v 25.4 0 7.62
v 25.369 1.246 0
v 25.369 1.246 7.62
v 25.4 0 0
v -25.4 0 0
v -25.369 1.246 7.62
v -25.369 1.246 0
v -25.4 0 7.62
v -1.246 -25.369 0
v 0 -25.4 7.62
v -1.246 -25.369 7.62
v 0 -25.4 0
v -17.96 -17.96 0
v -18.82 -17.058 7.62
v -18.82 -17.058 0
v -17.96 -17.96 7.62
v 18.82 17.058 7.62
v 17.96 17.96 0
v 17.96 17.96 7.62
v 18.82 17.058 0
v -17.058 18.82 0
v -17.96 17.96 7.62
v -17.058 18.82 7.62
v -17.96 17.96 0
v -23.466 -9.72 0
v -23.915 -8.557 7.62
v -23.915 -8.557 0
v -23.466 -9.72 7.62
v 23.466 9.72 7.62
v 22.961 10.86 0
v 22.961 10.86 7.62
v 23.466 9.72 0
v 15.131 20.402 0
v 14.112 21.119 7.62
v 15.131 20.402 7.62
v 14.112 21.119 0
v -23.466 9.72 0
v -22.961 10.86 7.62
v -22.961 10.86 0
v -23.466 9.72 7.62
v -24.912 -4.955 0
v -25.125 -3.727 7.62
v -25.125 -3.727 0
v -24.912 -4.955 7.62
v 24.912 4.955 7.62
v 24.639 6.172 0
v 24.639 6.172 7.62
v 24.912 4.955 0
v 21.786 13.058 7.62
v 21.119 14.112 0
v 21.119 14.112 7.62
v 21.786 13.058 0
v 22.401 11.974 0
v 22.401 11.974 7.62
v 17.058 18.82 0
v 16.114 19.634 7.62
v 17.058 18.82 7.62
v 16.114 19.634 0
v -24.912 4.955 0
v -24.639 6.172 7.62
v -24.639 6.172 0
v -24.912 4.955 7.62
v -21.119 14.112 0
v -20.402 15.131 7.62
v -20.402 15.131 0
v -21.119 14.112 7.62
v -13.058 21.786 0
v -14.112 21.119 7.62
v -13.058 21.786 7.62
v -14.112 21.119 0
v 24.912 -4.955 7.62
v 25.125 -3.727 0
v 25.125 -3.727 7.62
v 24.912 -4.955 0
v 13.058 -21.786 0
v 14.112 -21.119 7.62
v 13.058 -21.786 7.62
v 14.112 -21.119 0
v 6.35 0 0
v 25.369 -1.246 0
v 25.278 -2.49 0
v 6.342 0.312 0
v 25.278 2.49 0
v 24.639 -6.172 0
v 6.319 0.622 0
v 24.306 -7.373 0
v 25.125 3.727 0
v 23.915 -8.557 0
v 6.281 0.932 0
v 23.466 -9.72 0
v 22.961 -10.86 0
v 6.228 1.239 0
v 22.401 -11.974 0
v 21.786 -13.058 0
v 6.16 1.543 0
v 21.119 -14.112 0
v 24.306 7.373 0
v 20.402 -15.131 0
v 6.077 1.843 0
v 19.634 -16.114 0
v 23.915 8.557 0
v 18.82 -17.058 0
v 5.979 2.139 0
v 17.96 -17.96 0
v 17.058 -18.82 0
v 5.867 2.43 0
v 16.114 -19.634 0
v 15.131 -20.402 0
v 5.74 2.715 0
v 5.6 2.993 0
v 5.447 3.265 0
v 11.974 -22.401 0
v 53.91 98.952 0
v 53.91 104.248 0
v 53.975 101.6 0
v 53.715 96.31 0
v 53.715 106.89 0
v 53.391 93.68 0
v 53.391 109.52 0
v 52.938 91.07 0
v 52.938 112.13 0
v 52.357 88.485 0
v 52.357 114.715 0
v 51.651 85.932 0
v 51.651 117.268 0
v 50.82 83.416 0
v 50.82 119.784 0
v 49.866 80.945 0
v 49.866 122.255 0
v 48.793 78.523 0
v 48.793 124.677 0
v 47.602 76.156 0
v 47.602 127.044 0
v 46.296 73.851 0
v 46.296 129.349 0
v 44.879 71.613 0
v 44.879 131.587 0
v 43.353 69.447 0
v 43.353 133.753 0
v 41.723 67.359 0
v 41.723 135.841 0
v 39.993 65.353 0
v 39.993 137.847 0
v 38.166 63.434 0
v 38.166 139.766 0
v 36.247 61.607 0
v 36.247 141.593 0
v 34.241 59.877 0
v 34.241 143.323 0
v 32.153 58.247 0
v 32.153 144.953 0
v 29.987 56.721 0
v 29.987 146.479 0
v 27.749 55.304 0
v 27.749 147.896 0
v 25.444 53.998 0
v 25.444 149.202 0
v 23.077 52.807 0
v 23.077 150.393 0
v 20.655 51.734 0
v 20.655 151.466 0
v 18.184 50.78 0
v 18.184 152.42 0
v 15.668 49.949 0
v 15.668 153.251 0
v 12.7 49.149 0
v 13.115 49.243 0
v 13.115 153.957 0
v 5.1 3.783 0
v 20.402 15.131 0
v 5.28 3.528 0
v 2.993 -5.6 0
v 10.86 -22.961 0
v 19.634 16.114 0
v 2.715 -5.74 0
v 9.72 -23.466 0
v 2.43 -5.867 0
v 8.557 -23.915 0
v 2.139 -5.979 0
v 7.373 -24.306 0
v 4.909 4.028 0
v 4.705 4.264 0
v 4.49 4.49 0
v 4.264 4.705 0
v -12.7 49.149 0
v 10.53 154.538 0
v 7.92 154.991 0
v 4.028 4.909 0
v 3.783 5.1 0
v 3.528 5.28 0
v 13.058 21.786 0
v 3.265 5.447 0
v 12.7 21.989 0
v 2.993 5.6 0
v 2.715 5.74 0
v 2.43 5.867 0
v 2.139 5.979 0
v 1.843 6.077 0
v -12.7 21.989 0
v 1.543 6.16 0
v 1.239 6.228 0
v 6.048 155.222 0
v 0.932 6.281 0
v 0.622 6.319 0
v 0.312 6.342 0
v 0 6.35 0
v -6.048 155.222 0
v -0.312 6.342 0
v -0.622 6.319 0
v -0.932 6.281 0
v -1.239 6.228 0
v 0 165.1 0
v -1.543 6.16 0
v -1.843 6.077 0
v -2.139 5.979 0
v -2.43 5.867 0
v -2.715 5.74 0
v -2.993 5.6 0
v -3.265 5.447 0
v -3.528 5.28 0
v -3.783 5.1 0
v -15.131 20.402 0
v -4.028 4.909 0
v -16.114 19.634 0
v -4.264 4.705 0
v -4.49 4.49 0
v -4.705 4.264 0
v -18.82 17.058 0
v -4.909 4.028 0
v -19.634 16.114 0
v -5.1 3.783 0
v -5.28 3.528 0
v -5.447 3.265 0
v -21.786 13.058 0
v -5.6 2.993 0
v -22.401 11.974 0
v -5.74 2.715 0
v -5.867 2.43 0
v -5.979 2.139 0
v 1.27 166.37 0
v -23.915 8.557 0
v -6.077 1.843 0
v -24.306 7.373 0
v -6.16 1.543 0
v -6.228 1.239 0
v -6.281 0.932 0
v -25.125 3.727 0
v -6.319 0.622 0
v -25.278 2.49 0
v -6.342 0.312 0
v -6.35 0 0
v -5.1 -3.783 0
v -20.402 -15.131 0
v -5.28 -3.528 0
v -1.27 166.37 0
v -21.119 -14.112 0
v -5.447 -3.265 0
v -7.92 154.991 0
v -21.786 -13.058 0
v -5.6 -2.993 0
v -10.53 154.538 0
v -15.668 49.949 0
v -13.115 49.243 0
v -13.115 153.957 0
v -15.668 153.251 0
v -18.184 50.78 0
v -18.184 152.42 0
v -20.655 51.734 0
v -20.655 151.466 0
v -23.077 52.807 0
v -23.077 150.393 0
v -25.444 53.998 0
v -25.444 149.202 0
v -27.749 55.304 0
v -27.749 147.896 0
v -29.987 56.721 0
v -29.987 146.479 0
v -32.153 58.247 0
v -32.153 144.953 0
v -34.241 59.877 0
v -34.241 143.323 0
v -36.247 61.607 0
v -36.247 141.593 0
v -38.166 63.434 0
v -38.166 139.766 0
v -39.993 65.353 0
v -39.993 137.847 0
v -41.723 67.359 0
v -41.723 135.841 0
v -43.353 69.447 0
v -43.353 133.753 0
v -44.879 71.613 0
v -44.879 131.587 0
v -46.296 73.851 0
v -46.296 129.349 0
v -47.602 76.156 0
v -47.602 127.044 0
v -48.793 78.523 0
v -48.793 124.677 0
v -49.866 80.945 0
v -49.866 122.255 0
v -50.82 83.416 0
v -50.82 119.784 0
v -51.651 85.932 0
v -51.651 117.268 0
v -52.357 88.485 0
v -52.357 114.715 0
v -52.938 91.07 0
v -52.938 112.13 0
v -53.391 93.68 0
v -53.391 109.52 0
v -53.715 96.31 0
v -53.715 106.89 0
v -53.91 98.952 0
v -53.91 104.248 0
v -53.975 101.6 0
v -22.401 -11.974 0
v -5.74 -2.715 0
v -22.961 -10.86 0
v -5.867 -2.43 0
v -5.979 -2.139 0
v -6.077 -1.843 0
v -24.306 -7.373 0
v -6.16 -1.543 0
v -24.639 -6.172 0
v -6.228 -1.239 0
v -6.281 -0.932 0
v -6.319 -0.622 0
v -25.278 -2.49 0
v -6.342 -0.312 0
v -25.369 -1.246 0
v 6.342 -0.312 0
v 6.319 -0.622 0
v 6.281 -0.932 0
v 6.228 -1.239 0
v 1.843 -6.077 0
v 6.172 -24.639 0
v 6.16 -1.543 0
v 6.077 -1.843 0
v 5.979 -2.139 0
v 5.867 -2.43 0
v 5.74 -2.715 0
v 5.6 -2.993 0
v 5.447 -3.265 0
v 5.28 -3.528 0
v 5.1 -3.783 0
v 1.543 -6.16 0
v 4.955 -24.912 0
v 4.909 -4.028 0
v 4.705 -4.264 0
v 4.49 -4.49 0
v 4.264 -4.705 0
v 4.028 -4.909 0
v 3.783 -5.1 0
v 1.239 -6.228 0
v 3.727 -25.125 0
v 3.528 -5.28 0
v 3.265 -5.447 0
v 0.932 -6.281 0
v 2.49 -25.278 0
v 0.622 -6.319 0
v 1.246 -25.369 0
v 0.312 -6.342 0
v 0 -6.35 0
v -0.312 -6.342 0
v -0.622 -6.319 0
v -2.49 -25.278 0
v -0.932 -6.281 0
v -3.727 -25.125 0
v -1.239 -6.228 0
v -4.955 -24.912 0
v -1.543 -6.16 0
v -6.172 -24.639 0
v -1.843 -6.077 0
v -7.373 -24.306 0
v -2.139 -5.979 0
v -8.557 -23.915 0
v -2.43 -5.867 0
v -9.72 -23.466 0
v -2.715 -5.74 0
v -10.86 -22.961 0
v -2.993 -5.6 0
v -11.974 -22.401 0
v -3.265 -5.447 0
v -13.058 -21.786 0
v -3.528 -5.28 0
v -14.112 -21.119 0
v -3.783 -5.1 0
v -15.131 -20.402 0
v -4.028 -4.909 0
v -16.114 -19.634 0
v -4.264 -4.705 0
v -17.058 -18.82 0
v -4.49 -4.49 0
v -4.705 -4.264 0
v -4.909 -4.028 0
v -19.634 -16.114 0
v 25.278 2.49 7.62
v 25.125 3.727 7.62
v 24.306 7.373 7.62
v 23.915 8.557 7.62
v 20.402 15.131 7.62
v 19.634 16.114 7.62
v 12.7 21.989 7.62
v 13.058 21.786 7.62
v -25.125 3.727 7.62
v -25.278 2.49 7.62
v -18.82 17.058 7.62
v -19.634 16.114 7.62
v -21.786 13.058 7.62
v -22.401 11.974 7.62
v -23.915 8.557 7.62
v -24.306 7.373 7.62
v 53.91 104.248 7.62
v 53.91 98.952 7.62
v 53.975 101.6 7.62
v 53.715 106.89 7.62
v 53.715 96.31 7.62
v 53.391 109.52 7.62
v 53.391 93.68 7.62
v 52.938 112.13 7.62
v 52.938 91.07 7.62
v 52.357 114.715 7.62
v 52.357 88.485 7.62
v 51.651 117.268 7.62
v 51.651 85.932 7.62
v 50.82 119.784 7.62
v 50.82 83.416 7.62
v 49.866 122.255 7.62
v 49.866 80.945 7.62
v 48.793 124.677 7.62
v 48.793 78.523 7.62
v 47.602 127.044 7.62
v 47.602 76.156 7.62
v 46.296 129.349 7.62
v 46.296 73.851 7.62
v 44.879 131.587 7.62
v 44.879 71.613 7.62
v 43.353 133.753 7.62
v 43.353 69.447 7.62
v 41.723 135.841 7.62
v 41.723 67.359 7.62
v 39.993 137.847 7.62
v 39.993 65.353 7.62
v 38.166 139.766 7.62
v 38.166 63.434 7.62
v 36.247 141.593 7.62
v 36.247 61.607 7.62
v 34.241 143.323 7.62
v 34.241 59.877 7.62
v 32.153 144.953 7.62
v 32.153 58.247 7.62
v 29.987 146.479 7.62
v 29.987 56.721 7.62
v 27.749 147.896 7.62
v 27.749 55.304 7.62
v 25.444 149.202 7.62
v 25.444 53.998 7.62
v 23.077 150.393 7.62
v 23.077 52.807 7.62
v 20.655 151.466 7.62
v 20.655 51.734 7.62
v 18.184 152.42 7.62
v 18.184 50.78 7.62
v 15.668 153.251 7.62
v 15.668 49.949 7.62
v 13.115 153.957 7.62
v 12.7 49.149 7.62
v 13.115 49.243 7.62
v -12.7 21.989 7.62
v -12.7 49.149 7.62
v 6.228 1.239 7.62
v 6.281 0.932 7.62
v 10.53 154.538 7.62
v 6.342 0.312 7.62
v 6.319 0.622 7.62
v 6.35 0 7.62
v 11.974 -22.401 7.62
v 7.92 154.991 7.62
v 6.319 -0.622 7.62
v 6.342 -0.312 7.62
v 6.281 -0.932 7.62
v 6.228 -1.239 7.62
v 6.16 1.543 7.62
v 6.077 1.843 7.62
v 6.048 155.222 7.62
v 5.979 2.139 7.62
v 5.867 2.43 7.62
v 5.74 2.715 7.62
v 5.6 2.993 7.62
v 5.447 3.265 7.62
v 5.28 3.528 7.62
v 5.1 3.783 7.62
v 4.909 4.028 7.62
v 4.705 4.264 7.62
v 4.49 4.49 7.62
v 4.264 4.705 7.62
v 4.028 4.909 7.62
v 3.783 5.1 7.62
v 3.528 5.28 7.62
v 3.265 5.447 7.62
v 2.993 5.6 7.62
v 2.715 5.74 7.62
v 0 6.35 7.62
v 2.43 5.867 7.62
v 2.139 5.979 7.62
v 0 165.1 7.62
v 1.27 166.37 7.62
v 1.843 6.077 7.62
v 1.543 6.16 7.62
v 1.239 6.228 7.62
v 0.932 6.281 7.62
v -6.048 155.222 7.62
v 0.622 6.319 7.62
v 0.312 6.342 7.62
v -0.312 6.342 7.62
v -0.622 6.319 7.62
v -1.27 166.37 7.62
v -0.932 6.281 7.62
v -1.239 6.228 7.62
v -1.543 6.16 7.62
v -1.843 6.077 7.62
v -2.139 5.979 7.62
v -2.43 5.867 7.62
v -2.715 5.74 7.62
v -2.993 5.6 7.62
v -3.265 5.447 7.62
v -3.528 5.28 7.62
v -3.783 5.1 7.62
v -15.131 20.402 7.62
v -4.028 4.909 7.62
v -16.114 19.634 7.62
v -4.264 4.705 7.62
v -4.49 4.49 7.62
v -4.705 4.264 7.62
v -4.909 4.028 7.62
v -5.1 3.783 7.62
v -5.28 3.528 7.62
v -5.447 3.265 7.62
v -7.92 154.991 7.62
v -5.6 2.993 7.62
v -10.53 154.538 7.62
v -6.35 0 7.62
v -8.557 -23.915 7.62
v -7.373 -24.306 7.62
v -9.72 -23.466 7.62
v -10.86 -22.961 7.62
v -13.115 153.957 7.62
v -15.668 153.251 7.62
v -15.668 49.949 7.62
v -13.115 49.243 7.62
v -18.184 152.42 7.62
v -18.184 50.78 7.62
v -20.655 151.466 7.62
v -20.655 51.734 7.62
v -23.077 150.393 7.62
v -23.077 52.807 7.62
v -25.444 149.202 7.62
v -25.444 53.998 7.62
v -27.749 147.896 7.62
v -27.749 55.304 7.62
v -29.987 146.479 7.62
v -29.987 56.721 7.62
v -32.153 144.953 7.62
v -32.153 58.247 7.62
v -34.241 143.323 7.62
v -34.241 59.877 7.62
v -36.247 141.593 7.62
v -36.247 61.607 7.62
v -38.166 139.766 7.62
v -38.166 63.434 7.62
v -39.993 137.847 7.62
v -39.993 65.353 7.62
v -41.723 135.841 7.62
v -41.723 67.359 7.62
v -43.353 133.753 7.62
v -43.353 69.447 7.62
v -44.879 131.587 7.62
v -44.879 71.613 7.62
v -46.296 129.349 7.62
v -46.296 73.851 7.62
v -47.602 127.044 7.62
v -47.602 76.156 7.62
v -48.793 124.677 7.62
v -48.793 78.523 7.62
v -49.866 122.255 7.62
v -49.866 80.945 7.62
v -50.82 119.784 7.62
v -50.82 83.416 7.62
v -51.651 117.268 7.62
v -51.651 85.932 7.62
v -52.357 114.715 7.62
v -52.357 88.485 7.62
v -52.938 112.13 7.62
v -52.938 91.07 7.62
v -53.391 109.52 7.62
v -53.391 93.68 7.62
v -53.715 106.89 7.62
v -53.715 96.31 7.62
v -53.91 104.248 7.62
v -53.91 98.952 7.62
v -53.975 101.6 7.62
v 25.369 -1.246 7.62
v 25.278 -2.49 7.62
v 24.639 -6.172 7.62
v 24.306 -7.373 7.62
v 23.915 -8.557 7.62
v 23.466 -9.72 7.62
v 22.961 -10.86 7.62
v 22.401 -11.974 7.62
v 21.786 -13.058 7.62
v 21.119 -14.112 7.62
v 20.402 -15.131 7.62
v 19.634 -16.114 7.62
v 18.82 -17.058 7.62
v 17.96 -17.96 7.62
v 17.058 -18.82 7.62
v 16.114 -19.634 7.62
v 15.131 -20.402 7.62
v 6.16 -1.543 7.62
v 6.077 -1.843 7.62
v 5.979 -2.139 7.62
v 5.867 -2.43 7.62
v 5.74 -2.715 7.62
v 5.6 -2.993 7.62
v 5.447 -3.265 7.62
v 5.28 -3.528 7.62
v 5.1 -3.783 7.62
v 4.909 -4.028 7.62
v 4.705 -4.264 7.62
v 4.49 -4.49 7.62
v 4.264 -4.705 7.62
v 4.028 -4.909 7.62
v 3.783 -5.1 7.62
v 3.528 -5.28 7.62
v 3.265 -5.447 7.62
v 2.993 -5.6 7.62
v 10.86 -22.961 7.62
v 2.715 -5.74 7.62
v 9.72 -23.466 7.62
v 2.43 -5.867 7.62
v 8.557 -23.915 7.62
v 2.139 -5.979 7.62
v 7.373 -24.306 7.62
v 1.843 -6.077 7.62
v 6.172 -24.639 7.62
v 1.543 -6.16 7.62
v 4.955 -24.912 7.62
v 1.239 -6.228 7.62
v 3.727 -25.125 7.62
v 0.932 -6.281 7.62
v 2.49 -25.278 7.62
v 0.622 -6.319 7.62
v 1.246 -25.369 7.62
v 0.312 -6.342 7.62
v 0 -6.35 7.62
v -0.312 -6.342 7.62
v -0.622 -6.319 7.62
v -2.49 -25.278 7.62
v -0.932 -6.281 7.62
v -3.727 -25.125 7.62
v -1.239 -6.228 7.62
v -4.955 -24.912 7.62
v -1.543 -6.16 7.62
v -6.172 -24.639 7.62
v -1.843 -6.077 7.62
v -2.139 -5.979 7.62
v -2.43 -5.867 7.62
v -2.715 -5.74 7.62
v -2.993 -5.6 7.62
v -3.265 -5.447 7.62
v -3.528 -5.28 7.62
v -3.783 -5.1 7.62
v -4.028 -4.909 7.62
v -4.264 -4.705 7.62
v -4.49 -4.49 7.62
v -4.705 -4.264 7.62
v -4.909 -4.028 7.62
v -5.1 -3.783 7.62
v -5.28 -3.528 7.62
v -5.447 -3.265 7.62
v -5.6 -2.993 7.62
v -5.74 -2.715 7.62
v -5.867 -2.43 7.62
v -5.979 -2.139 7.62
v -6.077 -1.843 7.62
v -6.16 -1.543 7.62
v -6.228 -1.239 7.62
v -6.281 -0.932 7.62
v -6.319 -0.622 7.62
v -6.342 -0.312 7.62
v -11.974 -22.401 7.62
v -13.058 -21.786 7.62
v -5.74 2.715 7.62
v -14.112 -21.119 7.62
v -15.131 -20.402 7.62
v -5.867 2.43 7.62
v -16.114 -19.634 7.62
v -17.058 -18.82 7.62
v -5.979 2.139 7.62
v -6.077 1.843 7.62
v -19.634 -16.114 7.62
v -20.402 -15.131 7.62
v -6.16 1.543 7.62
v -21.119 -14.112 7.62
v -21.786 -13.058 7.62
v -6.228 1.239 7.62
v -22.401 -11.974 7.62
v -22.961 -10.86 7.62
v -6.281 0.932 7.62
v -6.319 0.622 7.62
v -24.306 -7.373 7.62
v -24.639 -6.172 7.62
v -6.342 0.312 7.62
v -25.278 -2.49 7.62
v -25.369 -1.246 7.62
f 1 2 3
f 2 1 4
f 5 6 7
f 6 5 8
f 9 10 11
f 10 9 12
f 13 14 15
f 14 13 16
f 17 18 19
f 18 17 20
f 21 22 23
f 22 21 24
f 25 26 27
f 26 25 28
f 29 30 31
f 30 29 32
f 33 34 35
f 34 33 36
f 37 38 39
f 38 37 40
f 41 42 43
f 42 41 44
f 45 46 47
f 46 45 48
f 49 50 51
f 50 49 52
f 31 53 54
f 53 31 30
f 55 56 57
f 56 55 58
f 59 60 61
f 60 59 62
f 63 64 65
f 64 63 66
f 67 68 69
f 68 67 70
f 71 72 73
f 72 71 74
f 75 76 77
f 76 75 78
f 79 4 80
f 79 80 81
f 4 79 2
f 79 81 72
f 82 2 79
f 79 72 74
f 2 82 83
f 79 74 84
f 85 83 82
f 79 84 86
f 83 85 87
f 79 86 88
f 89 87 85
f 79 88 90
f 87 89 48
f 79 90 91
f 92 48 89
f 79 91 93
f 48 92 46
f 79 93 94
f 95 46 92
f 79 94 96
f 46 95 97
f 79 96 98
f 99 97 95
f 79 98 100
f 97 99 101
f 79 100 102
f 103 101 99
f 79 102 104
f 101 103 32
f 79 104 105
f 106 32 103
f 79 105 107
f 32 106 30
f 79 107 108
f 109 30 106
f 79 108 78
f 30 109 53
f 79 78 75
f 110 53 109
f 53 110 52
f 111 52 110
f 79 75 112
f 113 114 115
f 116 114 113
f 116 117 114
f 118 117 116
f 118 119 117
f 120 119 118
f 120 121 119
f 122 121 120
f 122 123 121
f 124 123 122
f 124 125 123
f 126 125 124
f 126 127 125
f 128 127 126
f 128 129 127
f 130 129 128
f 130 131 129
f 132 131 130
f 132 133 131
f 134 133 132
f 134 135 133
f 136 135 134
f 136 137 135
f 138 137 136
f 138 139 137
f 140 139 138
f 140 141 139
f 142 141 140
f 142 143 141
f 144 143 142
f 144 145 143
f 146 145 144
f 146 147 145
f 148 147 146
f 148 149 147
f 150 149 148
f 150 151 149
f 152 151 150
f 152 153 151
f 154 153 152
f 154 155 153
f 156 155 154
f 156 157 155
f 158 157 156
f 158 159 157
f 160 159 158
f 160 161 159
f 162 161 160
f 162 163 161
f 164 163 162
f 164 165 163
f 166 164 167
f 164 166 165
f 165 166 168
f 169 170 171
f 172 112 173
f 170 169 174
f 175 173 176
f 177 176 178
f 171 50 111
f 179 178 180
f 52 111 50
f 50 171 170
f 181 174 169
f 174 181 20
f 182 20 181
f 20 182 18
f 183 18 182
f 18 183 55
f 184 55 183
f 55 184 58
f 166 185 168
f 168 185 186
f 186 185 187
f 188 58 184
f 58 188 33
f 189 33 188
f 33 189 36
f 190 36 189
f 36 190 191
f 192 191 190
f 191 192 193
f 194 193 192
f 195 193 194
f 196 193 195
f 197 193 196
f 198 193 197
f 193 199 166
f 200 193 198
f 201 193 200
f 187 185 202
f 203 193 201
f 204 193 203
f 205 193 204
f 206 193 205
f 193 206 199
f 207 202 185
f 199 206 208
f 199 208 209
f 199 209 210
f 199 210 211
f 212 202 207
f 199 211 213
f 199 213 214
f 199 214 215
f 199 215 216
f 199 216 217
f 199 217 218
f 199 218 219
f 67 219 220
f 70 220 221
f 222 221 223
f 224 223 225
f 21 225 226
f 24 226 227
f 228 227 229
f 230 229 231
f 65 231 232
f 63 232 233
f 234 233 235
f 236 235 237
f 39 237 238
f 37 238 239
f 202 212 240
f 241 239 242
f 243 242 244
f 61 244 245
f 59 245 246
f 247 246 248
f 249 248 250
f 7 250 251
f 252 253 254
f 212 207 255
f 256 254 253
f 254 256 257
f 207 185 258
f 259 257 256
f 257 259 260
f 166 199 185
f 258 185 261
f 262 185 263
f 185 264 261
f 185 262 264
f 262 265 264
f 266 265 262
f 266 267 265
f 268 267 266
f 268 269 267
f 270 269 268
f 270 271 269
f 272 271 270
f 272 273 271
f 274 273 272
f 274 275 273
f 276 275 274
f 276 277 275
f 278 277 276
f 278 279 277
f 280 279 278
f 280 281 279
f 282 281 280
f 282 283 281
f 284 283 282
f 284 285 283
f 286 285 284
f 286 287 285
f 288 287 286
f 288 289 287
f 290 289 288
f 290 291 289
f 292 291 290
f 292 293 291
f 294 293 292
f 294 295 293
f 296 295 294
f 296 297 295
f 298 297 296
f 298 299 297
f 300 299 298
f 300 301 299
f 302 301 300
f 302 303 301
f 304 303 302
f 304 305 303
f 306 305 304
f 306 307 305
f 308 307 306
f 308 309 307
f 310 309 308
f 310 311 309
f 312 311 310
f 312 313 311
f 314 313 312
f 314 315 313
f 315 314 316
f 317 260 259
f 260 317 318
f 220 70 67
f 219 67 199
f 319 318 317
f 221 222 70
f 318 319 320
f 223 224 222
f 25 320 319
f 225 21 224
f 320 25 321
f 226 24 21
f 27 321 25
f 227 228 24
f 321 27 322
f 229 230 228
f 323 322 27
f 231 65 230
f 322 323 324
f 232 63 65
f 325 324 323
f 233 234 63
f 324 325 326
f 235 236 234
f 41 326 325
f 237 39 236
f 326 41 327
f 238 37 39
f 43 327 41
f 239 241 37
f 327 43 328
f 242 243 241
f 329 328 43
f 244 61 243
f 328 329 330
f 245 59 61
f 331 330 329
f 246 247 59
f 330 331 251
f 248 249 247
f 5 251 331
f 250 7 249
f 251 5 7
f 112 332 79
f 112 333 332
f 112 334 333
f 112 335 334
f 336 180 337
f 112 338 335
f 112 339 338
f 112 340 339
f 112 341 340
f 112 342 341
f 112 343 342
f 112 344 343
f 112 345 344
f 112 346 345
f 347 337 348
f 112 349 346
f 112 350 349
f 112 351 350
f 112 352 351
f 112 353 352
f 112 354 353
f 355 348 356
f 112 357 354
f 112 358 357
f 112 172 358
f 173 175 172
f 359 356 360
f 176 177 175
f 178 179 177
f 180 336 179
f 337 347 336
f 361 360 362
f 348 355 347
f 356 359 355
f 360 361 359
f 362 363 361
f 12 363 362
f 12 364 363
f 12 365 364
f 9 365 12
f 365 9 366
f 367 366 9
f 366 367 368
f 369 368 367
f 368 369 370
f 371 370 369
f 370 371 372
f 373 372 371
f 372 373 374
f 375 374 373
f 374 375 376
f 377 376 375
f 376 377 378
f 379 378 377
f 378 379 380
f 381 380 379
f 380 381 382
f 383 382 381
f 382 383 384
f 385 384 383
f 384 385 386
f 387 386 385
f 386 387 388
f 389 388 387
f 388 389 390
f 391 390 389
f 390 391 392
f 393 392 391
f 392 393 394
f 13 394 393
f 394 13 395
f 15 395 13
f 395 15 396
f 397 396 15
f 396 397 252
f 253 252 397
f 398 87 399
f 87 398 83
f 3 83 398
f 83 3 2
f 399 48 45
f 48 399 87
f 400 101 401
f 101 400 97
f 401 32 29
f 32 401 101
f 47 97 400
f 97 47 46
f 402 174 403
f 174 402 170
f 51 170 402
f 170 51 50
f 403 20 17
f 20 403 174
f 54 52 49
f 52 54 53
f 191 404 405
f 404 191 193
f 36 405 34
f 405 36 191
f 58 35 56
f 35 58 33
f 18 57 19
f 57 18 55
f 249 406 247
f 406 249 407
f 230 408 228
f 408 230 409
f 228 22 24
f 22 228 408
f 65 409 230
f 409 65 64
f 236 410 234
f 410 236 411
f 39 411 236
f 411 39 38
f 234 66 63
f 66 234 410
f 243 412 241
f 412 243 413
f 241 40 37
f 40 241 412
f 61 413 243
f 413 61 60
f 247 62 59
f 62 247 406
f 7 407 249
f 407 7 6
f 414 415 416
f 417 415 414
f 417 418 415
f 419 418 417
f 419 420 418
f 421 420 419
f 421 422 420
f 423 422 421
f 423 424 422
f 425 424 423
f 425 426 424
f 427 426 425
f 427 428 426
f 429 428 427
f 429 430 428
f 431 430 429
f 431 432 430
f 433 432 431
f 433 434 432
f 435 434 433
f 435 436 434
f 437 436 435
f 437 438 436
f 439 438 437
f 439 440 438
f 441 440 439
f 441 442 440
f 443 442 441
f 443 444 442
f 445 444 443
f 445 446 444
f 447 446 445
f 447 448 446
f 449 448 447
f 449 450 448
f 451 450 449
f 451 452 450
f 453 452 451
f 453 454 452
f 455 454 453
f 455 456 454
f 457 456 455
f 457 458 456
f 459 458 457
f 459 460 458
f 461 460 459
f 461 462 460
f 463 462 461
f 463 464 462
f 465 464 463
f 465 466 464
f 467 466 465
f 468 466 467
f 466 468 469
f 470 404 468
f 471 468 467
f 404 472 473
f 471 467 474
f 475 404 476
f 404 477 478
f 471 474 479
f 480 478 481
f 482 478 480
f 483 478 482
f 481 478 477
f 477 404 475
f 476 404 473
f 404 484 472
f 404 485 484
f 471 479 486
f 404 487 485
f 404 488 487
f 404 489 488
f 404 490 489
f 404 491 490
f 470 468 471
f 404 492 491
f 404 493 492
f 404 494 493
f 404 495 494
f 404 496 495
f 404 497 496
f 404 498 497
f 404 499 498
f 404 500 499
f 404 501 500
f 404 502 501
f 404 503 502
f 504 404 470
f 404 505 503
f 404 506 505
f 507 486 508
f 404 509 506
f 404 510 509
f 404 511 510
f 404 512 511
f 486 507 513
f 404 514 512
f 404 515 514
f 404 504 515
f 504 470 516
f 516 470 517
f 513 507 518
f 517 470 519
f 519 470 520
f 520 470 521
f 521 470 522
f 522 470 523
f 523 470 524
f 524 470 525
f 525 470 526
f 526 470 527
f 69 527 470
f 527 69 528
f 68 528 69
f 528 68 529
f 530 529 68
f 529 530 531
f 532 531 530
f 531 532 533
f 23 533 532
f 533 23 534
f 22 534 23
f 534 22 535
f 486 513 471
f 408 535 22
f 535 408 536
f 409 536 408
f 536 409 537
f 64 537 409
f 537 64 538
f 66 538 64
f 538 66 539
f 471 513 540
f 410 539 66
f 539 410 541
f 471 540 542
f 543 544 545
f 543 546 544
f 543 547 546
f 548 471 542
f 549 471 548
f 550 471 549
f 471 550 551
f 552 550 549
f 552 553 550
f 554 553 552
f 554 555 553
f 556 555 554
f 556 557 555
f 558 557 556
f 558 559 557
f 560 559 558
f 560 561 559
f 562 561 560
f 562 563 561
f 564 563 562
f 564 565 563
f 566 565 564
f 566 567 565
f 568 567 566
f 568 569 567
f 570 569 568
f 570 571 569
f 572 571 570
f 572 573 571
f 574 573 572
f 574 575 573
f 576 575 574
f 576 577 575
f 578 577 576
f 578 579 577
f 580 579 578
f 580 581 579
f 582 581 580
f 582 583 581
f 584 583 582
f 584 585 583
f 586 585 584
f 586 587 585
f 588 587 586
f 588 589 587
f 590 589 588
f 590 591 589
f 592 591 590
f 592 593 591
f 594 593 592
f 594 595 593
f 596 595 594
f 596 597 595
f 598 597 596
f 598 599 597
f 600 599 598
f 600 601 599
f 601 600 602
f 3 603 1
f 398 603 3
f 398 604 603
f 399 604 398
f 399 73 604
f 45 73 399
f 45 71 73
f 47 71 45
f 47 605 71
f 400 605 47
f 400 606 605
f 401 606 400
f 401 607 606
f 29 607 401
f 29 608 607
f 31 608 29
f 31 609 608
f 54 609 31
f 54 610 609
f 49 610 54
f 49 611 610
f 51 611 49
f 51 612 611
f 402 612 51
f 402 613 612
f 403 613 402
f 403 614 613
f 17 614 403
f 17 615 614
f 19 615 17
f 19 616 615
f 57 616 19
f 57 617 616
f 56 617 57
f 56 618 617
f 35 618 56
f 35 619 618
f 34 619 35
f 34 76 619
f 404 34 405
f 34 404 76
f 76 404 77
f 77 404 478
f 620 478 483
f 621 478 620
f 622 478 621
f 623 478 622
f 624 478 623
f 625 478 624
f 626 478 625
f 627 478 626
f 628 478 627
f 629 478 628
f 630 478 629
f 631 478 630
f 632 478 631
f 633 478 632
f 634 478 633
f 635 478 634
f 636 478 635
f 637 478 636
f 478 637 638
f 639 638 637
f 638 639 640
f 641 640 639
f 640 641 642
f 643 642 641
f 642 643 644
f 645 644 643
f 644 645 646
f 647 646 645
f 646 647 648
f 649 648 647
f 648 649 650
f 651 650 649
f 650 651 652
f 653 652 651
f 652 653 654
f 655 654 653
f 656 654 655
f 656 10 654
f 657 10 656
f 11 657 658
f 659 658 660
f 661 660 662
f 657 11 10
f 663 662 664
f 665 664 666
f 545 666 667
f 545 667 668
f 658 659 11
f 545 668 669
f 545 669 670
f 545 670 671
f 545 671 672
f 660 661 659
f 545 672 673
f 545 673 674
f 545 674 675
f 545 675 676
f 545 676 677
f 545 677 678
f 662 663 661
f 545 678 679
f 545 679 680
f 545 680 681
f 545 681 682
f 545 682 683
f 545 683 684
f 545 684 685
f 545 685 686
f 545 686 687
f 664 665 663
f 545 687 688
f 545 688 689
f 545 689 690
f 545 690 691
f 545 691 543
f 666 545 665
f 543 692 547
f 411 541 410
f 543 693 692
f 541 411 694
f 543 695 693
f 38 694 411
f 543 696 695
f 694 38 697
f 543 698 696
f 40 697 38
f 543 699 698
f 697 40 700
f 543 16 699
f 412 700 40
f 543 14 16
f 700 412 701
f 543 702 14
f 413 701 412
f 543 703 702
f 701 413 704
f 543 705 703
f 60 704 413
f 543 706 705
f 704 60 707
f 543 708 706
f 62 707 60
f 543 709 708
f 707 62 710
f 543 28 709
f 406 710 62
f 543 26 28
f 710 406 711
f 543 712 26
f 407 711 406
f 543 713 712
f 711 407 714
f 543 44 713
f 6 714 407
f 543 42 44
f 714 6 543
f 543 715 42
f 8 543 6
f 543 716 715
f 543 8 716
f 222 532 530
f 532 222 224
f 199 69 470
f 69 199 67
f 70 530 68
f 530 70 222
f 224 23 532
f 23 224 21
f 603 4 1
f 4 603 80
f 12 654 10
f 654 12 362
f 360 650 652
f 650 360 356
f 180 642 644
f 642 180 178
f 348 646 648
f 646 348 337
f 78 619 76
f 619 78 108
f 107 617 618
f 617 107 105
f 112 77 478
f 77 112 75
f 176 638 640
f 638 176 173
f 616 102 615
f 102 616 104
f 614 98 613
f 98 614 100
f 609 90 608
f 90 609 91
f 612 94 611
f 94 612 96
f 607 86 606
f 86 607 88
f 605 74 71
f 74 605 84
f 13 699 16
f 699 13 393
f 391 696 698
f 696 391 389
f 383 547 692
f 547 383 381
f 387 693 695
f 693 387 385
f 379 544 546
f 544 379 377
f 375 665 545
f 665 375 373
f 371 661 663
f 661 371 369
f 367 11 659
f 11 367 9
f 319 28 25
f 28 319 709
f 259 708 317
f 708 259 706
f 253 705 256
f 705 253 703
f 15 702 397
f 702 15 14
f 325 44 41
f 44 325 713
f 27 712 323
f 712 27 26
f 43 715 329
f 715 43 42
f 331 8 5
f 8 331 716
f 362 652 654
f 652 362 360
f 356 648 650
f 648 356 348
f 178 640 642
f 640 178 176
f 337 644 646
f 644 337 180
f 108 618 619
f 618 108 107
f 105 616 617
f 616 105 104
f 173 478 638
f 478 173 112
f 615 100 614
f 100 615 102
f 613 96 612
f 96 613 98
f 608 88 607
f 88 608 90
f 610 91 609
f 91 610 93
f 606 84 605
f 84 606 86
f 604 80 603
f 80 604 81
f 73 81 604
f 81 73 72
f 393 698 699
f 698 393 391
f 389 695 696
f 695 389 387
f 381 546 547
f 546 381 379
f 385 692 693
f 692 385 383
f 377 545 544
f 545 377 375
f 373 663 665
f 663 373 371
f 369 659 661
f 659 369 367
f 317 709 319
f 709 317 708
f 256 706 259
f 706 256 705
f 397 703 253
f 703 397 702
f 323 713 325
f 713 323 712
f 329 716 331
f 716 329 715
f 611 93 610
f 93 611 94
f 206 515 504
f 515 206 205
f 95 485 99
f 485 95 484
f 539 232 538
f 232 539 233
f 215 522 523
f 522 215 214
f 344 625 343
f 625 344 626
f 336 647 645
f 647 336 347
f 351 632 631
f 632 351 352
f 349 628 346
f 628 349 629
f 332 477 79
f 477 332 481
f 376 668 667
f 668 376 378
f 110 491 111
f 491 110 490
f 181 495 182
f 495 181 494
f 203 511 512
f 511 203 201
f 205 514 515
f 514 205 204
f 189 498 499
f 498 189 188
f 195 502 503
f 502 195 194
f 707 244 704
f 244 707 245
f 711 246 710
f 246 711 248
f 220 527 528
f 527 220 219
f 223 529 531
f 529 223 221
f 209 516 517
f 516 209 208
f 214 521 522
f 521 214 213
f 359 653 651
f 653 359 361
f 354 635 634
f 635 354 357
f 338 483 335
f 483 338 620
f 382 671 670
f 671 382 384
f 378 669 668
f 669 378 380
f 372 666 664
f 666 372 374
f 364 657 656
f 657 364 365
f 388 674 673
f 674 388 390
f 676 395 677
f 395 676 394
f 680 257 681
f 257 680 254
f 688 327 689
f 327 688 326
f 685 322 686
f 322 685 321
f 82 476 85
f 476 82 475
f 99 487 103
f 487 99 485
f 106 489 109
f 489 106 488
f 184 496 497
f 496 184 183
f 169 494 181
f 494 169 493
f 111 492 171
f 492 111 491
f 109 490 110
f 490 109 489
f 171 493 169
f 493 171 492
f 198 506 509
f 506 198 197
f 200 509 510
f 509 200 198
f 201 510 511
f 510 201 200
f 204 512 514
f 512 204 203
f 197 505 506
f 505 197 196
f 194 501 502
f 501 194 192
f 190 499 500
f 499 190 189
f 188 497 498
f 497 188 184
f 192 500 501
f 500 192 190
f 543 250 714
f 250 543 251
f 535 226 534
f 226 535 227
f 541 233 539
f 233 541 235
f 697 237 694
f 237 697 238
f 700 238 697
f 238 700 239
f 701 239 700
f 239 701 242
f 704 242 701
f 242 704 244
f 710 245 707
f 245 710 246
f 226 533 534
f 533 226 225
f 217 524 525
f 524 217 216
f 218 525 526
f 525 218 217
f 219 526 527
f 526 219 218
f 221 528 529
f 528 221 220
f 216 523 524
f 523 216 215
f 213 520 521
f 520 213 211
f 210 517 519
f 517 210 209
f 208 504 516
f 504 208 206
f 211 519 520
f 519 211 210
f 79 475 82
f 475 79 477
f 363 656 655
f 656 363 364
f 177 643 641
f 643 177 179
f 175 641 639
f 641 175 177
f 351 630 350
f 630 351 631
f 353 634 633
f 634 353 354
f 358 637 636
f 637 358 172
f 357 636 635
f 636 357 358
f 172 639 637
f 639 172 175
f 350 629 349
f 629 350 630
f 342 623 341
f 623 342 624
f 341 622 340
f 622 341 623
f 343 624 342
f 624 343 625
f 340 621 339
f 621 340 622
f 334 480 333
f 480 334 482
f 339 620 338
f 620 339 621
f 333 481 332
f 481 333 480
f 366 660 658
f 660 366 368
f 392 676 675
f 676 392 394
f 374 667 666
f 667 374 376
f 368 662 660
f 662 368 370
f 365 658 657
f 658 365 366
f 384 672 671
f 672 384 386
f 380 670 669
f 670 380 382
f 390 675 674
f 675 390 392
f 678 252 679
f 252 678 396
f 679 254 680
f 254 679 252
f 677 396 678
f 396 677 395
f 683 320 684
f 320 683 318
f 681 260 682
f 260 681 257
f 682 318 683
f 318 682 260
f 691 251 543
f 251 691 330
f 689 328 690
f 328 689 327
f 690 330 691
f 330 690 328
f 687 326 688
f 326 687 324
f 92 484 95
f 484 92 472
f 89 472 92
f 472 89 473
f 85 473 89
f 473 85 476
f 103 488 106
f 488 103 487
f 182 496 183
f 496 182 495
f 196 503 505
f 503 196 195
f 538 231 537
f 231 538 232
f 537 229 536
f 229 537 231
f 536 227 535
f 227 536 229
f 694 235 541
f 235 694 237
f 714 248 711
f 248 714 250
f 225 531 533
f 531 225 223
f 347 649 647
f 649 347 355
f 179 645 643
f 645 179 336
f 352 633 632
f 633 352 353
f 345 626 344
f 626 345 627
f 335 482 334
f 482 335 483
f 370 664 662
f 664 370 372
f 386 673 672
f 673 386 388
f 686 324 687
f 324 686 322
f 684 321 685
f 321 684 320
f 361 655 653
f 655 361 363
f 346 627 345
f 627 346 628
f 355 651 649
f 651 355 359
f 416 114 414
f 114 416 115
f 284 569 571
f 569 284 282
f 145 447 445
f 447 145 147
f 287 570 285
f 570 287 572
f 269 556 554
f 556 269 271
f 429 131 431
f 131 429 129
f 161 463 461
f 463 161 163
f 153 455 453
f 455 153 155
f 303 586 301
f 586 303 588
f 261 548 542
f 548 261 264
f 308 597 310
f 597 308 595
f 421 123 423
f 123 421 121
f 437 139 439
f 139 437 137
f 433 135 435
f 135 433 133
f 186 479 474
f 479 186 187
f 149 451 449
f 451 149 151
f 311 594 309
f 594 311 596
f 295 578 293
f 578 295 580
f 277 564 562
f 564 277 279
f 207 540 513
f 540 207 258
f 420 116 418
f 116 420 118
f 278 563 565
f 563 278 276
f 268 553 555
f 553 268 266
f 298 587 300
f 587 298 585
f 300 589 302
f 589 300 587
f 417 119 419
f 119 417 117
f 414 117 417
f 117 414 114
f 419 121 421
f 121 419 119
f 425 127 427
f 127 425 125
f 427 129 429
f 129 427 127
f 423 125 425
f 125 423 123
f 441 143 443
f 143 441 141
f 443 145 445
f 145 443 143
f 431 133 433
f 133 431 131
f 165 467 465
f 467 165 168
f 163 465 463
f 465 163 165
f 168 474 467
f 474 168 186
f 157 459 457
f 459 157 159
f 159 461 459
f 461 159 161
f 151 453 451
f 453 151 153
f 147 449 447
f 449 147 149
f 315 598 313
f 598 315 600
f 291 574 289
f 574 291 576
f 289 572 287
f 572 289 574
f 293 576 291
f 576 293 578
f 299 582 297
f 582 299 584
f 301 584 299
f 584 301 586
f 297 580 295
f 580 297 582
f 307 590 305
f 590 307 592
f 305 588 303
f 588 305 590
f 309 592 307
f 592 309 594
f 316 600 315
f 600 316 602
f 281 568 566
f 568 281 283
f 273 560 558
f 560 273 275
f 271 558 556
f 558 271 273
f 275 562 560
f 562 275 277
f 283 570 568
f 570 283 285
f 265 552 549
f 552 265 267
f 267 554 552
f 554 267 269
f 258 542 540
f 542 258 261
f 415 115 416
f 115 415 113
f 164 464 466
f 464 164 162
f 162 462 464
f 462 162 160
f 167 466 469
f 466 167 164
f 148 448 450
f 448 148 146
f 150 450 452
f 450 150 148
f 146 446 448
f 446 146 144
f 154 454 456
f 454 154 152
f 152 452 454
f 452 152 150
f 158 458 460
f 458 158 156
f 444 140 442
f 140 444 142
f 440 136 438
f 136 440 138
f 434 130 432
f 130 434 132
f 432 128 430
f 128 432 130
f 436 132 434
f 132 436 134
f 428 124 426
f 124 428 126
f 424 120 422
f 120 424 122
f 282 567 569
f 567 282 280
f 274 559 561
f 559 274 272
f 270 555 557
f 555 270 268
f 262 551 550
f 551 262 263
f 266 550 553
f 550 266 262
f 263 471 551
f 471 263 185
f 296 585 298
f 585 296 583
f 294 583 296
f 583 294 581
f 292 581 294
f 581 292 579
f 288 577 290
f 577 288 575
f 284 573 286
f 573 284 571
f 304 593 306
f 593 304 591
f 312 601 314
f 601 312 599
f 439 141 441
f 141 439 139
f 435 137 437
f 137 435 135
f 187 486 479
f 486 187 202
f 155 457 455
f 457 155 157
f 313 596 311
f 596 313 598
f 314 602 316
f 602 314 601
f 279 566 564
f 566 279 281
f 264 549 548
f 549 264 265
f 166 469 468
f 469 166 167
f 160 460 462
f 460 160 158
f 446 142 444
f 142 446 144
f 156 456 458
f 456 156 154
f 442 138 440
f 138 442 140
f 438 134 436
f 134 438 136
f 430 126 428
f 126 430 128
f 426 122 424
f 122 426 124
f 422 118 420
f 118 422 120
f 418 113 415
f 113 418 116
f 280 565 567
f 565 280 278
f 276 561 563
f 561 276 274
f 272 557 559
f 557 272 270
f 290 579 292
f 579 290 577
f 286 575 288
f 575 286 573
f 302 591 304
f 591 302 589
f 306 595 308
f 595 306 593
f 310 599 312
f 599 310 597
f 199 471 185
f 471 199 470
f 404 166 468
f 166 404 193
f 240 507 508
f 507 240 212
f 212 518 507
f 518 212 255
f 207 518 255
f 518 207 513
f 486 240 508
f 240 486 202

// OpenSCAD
$fn = 128;

inchesToMm = 25.40;

height = 0.3;

boltDiam = 0.5;
innerDiam = 2;

tubeDiam = 4.25;

scale([inchesToMm,inchesToMm,inchesToMm]) union() {
    difference() {
        cylinder(h=height, d=innerDiam);
        cylinder(h=height, d=boltDiam);
    }

    translate([0,4,0]) cylinder(h=height, d=tubeDiam);
    translate([-0.5,0.75,0]) cube(size=[1,1.5,height]);

    translate([0,6.5,0])
    linear_extrude(height = height)
    polygon(
        points = [
            [ -0.05, 0.05 ],
            [    0,   0 ],
            [  0.05, 0.05 ],
            [  0.5, -1  ],
            [ -0.5, -1  ],
        ]
    );
}
